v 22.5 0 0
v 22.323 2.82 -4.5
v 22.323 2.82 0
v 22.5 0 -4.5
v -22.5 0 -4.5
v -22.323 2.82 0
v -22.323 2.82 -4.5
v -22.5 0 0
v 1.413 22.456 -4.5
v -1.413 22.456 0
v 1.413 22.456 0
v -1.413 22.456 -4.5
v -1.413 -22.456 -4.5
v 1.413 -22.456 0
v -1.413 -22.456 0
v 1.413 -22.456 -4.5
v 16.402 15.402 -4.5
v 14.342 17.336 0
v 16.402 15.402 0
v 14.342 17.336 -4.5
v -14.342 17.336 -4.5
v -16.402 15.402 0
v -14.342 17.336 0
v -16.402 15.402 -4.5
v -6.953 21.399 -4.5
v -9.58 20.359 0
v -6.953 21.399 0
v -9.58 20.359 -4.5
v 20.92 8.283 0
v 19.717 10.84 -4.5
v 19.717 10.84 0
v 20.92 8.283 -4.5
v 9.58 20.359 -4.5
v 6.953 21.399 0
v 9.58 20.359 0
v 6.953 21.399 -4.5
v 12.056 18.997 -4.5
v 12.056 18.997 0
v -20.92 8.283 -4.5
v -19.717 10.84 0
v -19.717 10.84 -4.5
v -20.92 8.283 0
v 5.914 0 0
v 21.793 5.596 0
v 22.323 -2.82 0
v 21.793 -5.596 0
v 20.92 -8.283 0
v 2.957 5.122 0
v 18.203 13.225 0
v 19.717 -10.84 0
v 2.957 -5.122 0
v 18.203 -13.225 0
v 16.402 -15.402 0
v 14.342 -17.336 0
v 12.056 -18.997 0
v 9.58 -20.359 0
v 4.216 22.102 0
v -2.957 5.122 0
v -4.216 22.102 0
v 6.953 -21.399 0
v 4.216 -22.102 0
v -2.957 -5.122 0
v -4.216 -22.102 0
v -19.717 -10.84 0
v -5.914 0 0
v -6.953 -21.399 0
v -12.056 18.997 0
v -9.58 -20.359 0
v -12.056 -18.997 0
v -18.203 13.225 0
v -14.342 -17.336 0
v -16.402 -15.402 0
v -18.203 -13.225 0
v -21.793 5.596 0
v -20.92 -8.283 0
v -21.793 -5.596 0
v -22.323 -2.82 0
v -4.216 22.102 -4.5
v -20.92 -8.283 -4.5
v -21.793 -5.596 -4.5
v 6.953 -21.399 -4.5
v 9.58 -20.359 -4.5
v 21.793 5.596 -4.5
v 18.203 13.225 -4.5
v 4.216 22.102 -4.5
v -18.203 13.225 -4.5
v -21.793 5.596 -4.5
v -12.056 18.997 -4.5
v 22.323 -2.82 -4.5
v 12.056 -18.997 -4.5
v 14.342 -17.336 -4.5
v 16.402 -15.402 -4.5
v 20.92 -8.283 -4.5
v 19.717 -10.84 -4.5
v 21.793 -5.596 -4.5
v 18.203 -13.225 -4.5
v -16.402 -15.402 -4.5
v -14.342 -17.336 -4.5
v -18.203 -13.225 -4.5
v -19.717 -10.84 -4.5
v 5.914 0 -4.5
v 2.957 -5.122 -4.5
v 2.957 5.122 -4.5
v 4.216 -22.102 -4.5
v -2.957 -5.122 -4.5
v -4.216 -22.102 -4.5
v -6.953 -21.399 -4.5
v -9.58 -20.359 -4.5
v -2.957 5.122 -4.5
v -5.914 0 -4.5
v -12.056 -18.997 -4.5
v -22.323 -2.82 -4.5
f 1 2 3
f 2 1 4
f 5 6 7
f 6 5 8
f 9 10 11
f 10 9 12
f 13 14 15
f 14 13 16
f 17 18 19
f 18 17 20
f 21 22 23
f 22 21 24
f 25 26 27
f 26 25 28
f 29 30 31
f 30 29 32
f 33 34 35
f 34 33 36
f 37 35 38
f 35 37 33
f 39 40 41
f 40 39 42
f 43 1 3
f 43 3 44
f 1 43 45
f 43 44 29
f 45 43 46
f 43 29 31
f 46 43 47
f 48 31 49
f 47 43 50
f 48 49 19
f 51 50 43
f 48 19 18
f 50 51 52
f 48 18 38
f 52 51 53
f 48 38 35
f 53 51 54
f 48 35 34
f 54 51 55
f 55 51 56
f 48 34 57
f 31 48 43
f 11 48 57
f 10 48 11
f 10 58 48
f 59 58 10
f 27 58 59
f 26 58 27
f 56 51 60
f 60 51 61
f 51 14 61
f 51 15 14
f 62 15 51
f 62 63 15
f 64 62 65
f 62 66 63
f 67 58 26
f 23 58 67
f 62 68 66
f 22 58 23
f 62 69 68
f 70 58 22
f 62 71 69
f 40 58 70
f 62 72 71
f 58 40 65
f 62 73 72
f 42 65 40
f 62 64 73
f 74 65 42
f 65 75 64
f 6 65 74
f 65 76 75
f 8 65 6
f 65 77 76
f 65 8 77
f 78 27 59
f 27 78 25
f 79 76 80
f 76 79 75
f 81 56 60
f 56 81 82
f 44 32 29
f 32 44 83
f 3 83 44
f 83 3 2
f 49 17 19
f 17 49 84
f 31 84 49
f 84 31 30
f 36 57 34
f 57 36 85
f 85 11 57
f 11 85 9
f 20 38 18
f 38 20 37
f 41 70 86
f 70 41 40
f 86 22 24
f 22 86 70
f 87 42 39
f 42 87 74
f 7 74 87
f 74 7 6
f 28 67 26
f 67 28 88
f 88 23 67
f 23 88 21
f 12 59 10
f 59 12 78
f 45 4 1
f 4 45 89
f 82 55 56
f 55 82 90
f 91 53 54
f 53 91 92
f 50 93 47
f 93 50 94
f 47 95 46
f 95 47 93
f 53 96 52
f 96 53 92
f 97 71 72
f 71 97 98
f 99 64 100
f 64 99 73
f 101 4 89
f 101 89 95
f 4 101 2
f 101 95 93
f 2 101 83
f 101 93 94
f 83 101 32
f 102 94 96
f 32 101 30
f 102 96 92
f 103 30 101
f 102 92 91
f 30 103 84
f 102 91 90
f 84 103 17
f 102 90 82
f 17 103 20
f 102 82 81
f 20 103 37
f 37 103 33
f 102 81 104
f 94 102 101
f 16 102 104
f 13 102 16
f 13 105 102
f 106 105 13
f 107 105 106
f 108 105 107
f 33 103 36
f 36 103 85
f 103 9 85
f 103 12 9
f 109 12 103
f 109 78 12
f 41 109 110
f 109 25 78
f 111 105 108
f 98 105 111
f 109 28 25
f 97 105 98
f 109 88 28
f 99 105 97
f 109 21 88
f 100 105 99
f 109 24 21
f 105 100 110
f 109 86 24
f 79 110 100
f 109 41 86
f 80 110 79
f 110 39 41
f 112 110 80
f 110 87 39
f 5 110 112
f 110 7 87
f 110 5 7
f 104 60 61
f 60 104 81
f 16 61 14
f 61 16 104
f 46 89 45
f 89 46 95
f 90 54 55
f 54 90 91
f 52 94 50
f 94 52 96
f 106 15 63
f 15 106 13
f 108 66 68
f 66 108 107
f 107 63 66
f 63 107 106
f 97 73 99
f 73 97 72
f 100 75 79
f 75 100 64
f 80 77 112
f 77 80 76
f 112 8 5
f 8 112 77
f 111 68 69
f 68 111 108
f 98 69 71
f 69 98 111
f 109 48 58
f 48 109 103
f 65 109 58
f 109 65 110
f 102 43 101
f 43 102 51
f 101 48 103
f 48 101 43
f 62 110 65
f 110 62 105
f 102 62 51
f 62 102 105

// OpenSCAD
$fn = 50;


difference() {
	union() {
		translate(v = [0, 0, -4.5000000000]) {
			cylinder(h = 4.5000000000, r = 22.5000000000);
		}
		translate(v = [0, 0, -6.0000000000]) {
			cylinder(h = 6, r = 2.8750000000);
		}
	}
	union() {
		translate(v = [0, 0, 0]) {
			rotate(a = [0, 0, 0]) {
				difference() {
					union() {
						translate(v = [0, 0, -5]) {
							linear_extrude(height = 5) {
								polygon(points = [[5.9142500000, 0.0000000000], [2.9571250000, 5.1218907443], [-2.9571250000, 5.1218907443], [-5.9142500000, 0.0000000000], [-2.9571250000, -5.1218907443], [2.9571250000, -5.1218907443]]);
							}
						}
					}
					union();
				}
			}
		}
		#translate(v = [0, 0, -100.0000000000]) {
			cylinder(h = 200, r = 3.2500000000);
		}
	}
}
